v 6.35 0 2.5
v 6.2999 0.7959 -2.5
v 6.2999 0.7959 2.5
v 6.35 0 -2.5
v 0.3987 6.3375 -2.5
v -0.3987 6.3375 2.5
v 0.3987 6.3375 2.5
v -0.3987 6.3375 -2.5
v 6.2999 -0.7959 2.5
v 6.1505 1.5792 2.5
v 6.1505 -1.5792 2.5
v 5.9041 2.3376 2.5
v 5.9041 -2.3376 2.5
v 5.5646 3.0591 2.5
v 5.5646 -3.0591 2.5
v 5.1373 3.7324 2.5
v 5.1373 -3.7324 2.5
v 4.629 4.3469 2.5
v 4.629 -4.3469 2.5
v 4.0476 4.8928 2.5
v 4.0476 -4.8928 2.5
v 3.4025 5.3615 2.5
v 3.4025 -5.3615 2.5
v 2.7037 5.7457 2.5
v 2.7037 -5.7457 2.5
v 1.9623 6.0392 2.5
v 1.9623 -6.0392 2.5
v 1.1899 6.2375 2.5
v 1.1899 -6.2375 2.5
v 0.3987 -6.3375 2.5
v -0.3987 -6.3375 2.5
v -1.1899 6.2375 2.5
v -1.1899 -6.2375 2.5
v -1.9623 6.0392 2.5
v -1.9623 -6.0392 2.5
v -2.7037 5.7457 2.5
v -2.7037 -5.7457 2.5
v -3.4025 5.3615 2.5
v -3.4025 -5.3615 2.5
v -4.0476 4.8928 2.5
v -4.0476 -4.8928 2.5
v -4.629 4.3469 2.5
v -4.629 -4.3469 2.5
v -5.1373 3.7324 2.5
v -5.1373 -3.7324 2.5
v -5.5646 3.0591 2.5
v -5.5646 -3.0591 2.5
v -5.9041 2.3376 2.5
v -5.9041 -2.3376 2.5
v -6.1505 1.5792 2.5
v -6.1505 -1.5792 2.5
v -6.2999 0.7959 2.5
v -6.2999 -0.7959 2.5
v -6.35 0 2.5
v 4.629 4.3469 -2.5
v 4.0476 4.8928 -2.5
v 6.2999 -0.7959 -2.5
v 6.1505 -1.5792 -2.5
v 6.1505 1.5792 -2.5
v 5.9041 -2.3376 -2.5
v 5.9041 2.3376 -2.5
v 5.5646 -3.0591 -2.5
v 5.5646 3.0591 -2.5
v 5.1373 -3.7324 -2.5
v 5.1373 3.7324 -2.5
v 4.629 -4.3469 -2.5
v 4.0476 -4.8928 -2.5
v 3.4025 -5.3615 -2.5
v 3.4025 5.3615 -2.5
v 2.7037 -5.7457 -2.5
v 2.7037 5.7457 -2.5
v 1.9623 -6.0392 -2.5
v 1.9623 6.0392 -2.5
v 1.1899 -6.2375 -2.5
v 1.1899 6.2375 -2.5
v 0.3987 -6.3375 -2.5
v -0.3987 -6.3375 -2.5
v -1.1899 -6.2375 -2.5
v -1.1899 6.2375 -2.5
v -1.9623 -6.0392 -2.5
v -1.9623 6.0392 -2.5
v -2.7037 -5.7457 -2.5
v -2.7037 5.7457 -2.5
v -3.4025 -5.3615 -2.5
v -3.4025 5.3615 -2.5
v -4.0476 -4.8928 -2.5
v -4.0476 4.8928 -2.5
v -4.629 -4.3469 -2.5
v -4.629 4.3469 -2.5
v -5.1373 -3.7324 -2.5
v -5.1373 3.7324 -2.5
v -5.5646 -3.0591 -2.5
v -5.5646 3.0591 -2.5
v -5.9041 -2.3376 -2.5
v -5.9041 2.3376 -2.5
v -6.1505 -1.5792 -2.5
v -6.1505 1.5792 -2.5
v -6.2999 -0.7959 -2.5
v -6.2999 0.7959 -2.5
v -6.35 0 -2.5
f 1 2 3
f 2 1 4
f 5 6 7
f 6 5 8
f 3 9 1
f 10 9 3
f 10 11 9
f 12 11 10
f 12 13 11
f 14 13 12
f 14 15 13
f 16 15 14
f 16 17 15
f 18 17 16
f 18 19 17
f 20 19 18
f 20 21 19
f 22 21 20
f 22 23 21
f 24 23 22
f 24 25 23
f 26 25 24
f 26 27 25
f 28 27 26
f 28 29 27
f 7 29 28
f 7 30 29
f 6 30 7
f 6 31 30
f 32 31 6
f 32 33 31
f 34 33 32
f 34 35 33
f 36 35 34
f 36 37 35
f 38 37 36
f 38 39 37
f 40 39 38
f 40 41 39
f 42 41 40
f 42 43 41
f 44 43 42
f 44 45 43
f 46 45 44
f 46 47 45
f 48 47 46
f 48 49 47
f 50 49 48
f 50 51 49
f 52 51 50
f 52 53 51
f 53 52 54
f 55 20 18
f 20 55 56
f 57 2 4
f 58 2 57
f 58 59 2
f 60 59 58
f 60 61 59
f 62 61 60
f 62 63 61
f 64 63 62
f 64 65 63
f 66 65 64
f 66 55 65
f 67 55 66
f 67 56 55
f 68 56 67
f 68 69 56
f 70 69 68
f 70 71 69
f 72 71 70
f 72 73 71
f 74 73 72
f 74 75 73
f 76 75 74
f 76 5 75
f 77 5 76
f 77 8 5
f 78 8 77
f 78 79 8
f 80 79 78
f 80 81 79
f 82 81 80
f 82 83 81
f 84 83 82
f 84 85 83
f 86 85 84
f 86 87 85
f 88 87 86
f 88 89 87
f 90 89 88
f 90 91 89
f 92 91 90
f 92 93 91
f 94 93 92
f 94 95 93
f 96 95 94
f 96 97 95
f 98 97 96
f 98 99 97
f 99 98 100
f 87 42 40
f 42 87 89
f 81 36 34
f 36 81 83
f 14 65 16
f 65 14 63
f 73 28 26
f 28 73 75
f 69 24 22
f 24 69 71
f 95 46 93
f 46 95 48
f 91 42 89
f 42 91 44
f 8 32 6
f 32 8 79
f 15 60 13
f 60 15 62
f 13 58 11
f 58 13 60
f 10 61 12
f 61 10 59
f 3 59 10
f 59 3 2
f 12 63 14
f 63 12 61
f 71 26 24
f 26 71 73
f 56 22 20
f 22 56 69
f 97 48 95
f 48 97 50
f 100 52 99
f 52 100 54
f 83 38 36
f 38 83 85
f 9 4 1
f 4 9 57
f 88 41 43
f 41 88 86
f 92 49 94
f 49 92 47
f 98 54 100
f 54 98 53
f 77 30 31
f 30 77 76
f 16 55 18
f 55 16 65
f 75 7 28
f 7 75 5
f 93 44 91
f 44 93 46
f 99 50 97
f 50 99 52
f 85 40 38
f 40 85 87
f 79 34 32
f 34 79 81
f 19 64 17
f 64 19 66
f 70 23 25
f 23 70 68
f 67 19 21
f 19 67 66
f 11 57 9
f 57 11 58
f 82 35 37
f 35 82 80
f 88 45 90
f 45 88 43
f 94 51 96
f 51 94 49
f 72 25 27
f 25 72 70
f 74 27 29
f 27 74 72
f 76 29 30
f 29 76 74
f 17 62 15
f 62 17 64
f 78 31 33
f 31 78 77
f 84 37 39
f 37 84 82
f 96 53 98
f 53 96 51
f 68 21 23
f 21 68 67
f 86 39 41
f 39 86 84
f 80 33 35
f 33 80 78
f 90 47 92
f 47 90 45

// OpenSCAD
$fn = 50;


difference() {
	union() {
		translate(v = [0, 0, -2.5000000000]) {
			cylinder(h = 5, r = 6.3500000000);
		}
	}
	union() {
		translate(v = [0, 0, -100.0000000000]) {
			cylinder(h = 200, r = 0);
		}
	}
}
